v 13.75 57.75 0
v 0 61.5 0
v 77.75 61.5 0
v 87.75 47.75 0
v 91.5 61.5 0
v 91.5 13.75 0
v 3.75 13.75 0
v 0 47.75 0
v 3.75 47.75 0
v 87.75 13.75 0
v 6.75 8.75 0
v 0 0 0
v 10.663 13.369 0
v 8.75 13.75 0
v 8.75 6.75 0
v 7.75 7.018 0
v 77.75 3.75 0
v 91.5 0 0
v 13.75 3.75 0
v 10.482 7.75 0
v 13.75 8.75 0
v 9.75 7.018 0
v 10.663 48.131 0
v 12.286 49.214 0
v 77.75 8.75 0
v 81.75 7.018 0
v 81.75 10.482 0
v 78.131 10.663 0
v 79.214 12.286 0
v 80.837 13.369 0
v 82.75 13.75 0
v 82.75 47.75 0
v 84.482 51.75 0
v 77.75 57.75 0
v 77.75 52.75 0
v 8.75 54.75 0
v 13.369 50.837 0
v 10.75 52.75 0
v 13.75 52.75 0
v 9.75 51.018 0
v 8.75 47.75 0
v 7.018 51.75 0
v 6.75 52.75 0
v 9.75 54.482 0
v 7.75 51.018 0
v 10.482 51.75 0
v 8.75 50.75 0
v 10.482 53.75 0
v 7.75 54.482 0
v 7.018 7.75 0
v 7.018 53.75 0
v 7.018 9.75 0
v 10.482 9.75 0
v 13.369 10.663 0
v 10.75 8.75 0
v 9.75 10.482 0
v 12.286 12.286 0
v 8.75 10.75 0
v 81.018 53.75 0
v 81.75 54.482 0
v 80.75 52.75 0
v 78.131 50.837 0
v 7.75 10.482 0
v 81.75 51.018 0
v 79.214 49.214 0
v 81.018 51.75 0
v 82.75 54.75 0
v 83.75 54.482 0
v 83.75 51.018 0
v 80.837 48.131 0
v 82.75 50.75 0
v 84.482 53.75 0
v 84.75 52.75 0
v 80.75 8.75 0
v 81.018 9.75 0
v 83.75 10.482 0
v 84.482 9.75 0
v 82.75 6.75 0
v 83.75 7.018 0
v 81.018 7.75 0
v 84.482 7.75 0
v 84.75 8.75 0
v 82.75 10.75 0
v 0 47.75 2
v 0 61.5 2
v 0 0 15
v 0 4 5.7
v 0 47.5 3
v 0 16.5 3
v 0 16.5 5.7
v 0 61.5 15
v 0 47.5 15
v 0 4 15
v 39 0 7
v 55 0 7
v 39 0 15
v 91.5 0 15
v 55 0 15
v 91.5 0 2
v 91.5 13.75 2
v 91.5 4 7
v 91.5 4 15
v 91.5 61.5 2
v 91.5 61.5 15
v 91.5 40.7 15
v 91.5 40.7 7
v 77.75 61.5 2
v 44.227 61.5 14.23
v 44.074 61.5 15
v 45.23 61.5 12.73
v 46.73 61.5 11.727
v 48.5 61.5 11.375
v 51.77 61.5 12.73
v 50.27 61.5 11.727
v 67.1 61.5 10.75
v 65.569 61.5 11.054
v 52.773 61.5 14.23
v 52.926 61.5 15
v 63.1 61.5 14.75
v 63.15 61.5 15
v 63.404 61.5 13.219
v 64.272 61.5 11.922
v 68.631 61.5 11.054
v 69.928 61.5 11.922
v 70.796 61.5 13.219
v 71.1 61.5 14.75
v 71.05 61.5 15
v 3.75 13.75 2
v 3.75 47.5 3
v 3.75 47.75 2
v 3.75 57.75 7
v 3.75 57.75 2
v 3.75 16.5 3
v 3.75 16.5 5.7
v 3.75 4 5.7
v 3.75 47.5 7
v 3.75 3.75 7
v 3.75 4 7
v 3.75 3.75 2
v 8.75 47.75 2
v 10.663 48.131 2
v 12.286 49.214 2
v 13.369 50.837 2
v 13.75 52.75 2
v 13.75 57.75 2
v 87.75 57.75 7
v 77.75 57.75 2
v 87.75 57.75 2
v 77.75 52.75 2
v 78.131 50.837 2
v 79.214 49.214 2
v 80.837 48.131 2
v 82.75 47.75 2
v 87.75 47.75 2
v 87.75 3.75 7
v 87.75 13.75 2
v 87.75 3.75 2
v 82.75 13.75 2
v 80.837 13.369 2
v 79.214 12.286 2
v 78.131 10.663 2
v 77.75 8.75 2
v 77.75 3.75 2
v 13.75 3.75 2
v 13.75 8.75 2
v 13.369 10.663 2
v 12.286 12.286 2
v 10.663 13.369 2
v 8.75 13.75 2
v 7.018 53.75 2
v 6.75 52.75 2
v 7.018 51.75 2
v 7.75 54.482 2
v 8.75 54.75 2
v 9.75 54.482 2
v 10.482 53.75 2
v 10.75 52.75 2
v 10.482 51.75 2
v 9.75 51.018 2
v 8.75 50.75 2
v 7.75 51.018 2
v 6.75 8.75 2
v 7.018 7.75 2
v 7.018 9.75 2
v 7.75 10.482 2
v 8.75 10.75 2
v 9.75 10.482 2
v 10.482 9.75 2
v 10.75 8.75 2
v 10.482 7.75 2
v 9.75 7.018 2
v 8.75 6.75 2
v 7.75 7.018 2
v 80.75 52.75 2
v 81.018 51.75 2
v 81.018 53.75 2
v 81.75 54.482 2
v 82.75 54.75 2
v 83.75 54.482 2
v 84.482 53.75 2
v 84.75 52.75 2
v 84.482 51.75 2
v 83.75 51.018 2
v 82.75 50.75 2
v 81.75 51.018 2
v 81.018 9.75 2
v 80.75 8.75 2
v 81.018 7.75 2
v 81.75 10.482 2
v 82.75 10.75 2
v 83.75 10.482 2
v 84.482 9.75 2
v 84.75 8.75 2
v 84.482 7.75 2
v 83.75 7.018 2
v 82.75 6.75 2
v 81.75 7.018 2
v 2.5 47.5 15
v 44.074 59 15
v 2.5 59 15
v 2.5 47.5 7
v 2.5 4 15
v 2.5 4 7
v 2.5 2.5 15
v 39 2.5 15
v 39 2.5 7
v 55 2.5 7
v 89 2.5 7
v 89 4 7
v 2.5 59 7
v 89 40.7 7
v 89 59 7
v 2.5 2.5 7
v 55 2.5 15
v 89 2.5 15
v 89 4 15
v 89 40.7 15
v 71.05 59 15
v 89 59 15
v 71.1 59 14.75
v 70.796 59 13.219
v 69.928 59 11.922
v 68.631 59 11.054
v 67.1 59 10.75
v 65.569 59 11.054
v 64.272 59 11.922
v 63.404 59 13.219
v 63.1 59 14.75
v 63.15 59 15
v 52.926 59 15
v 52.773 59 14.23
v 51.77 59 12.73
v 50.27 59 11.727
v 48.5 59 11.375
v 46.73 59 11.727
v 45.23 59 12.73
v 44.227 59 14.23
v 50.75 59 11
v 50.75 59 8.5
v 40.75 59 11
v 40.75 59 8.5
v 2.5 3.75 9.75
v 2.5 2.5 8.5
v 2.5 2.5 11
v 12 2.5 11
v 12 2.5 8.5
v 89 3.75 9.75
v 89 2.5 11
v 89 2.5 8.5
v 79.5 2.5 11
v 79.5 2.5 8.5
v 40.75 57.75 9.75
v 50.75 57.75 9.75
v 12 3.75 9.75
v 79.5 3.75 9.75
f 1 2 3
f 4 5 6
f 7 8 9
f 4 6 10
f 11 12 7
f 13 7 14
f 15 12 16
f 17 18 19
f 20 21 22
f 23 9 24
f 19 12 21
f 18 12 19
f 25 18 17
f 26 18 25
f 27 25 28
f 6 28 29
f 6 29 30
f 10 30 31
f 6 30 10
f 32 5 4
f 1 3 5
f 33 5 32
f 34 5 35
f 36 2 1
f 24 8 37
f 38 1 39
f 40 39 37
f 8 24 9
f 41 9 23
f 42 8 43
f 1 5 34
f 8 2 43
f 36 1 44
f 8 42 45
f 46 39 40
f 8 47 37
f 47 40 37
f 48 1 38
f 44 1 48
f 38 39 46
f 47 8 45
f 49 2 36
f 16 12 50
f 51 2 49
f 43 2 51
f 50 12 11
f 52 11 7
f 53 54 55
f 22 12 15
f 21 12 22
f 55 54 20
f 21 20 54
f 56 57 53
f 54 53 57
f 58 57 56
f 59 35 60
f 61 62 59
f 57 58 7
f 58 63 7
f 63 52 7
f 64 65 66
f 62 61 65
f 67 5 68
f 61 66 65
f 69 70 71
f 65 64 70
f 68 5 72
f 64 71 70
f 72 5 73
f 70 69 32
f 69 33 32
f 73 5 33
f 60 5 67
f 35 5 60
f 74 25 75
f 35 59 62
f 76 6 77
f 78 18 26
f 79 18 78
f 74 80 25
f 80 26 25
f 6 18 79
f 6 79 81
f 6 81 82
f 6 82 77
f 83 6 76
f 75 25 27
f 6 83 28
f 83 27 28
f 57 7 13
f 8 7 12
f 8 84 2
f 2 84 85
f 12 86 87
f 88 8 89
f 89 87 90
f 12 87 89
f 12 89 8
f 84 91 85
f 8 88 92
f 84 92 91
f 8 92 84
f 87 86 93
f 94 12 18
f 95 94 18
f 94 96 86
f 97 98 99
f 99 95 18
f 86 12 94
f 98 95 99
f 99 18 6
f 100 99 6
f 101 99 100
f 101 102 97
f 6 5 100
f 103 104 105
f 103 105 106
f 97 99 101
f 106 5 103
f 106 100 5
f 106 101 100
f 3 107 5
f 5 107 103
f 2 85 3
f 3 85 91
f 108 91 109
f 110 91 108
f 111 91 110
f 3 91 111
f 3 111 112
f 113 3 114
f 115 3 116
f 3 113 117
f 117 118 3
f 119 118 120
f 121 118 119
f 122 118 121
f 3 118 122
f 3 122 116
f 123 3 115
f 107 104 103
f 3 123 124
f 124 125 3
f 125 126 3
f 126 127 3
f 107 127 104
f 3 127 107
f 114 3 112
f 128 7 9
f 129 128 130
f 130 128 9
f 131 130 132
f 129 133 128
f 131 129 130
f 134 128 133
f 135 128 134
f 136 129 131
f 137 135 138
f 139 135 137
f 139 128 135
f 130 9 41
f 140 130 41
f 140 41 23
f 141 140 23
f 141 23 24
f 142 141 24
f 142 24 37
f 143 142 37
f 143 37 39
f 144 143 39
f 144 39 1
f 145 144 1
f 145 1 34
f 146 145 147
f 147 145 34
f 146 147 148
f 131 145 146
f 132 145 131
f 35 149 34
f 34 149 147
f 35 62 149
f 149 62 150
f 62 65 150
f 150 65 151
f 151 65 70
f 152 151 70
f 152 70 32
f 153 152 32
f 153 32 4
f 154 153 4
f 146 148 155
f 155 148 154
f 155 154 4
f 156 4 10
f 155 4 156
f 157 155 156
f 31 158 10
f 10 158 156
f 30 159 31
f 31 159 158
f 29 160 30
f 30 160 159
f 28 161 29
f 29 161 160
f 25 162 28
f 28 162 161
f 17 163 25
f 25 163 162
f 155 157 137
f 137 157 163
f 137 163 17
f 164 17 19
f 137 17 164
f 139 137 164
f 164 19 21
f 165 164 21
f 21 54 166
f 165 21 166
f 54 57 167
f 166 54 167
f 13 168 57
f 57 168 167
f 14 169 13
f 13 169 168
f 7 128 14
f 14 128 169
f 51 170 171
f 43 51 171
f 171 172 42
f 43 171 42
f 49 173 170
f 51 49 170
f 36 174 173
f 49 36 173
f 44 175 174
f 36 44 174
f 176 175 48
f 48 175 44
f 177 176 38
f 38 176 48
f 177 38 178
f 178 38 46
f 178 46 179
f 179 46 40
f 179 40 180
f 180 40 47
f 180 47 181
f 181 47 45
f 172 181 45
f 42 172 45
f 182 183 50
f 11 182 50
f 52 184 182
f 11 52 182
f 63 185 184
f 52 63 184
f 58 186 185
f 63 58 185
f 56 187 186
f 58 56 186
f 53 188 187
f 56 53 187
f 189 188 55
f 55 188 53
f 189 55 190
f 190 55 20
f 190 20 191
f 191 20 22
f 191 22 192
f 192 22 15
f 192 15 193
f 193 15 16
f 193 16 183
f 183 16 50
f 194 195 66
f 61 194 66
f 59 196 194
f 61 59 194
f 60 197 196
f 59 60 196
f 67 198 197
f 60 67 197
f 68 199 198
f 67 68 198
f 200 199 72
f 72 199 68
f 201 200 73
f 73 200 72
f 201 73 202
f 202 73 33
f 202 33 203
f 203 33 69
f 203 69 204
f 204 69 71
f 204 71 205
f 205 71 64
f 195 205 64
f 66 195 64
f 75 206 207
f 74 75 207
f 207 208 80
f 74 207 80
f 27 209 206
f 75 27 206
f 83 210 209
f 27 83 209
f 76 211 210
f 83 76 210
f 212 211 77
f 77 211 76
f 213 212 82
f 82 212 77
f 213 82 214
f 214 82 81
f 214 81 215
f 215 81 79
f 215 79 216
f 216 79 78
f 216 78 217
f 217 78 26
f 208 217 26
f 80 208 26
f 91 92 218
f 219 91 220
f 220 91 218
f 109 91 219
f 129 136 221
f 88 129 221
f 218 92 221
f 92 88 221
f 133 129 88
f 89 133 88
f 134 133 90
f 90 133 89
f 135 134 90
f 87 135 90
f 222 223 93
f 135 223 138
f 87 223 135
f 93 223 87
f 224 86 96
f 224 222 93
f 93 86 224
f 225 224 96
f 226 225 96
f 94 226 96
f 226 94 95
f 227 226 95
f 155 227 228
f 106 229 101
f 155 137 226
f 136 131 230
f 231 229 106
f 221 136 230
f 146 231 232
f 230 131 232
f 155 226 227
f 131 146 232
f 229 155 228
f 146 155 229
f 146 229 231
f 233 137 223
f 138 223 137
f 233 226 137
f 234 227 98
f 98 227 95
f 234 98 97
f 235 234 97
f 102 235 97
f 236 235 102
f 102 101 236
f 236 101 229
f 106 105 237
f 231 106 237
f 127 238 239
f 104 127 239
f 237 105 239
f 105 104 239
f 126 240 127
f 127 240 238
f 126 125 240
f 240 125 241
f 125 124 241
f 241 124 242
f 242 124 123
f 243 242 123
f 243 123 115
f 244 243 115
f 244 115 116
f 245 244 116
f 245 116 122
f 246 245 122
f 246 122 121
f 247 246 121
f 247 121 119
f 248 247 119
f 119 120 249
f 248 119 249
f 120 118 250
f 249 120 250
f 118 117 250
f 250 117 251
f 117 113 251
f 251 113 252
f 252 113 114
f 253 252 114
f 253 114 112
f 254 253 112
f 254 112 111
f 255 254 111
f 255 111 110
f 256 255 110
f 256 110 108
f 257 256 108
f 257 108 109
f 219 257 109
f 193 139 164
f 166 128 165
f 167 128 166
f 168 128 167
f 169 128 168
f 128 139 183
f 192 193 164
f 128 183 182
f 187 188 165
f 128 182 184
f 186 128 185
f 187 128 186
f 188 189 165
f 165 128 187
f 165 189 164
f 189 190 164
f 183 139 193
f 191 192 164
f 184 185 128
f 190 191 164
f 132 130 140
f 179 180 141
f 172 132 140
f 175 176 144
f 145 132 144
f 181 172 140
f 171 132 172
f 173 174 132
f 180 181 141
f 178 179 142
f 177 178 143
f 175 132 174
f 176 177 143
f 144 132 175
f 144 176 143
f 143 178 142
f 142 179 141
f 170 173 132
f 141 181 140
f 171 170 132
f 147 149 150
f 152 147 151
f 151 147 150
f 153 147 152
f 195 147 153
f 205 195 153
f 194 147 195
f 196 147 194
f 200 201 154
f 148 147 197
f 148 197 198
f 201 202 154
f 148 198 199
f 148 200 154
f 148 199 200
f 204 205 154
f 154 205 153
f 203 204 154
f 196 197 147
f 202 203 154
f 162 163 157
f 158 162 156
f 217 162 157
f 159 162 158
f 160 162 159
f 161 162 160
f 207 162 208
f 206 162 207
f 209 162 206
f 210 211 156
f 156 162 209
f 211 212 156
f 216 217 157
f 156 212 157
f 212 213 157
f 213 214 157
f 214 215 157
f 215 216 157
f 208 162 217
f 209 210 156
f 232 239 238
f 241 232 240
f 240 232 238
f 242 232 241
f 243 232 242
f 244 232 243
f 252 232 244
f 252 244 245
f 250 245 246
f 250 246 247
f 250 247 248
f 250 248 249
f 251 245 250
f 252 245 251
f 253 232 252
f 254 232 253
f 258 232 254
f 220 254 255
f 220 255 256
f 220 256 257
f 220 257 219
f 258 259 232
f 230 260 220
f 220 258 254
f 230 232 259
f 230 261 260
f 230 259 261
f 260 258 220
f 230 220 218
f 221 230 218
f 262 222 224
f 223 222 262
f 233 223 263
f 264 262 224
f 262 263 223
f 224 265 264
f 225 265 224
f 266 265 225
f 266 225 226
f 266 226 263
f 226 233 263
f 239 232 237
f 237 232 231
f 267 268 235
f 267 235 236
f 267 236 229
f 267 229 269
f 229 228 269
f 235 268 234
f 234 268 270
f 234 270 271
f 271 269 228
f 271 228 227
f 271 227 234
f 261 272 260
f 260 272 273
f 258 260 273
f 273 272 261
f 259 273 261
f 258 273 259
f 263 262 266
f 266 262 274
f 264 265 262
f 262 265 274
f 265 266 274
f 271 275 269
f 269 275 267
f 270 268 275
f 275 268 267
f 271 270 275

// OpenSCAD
// Rasperry Pi mounting bracket

rpil = 86;        // RPi board length +1
rpiw = 56;        // RPi board width
rpit = 1.5;       // RPi board thinkness
rpim = 1.25;      // RPi margin on PCB sides (except where HDMI port)
// For the following, corner with power connector is (0,0)
// with length along X-axis, and width along Y-axis.
// x=0 edge:
powerymin = 3.5;  // Min-Y of micro-USP power connector (no clearance)
powerymax = 11.5; // Max-Y of micro-USP power connector (no clearance)
powerht   = -0.8;  // Height (from base of board)
cardymin  = 14.5; // Min-Y of SD card holder
cardymax  = 44.5; // Max-Y ..
cardht    = -3.5; // Height (*below* base of board, with clearance)
// y=0 edge
hdmixmin = 37;    // Min-X of HDMI socket (no clearance)
hdmixmax = 52;    // Max-X of HDMI socket (no clearance)
hdmiht   = 7.6;   // Height (from base of board)
// x=max edge
netminy  = 2;     // Min-Y of Network socket
netmaxy  = 18;    // Max-Y ..
netht    = 15;    // Height (from base of board)
usbminy  = 24.5;  // Min-Y of USB socket
usbmaxy  = 37.7;  // Max-Y ..
usbht    = 17.5;  // Height (from base of board)
// y=max edge
videox   = 46;    // Y-offset to centre of video connector
videoh   = 9;     // H-offset (from base of board)
videod   = 8.25;  // Diameter of video connector ** allow for plug **
audiox   = 64.6;  // Y-offset to centre of audio connector
audioh   = 7.75;  // H-offset (from base of board)
audiod   = 7;     // Diameter of audeo connector

module box(l, w, h, t)
{
  t2 = t * 2;
  difference()
  {
    cube( size=[l,w,h] );
    translate([t,t,t])
      cube( size=[l-t2, w-t2, h-t]) ;
  }
}

module boxsides(l, w, h, t)
{
  t2 = t * 2;
  difference()
  {
    cube( size=[l,w,h] );
    translate([t,t,0])
      cube( size=[l-t2, w-t2, h]) ;
  }
}

// len, width, height overall (internal)
// Wall thickness
// Support shoulder thickness
// Support height
module frame(lo, wo, ho, tw, ts, hs)
{
  difference()
  {
    boxsides(lo+tw*2, wo+tw*2, ho, tw+ts);
    translate([tw,tw,hs])
      cube(size=[lo,wo,ho]);
  }
}

// Mounting tab
module tab(l,w,t,cornerrad,holedia,xo,yo)
{
  rc = ((xo==0) && (yo==0)) ?  0 :
       ((xo==1) && (yo==0)) ?  1 :
       ((xo==1) && (yo==1)) ?  2 : 3;
  rotate([0,0,rc*90])
  {
    difference()
    {
      union()
      {
        translate([0,0,0]) cube(size=[l-cornerrad, w, t]);
        translate([0,0,0]) cube(size=[l, w-cornerrad, t]);
        translate ([l-cornerrad,w-cornerrad,0])
          cylinder(r=cornerrad, h=t, $fn=16);
      }
      translate([l-cornerrad, w-cornerrad, -t/2])
        cylinder(r=holedia/2, h=t*2, $fn=12);
    }
  }
}

// Cutout in frame side
module cutout(minx, maxx, miny, maxy, baseh, h)
{
  clearance = 0.5;
  cutheight = abs(h)+20;
  echo("Cutout x=",[minx,maxx]," y=",[miny,maxy],"h=",h," clearance=",clearance);
  if ( h > 0 )
  {
    translate([minx-clearance,miny-clearance,baseh])
      cube(size=[maxx-minx+2*clearance, maxy-miny+2*clearance, cutheight]);
  }
  else
  {
    translate([minx-clearance,miny-clearance,baseh+h-clearance])
      cube(size=[maxx-minx+2*clearance, maxy-miny+2*clearance, cutheight]);    
  }
}

// Hole cutout Y-aligned in frame side
module cutoutholeY(x, miny, maxy, h, d)
{
  clearance = 0.5;
  translate([x,miny-clearance,h])
    rotate([-90,0,0])    // (rotate from +Z to +Y axis)
      # cylinder(r=d/2+clearance,h=maxy-miny+clearance*2,$fn=16);
}

// Board retaining ridge
// min-x, max-x, y-pos of centre, height of centre, depth
module ridgeX(xmin, xmax, y, h, d)
{
  d2 = d*sqrt(2);
  translate([xmin,y,h])
    rotate([45,0,0])
      translate([0,0,0])
        # cube(size=[xmax-xmin,d2,d2]);
}

frameth  = 2.5;   // Thickness of outer frame
boardht  = 7;     // Height to board
totalht  = 15;    // Height overall
tabln    = 10;    // Length of corner tab
tabwd    = 10;    // Width of corner tab
tabth    = 2;     // Thickness of corner tab
holedia  = 4;     // Diamater screw hole in tab

module rpimount()
{
  clearance = 0.5;
  lenov = rpil+frameth*2+clearance;    // Overall length
  widov = rpiw+frameth*2+clearance;    // Overall width
  supth = frameth+rpim;                // Thickness of support frame
  tablo = tabln+supth;                 // Screw tab length overall
  tabwo = tabwd+supth;                 // Screw tab width overall
  difference()
  {
    union()
    {
      frame(rpil+clearance,rpiw+clearance,totalht,frameth,rpim,boardht);
      // Add mounting tabs
      for (xo = [0,1])
      {
        for (yo = [0,1])
        {
        translate ([xo*lenov,yo*widov,0])
          tab(tablo, tabwo, tabth, (min(tablo,tabwo)-supth)/2, holedia, xo, yo);
        }
      }
      // Add retaining ridges
      ridgeX(0, 12,                frameth,       boardht+rpit, 1.25);
      ridgeX(lenov-12, lenov,      frameth,       boardht+rpit, 1.25);
      ridgeX(lenov/2-5, lenov/2+5, widov-frameth, boardht+rpit, 1.25);
    }
    // Cutout for power connector (extended to avoid silly stick-up post)
    cutout(0,supth,frameth+powerymin-1.5,frameth+powerymax+10,boardht,powerht);
    // Cutout for SD card
    cutout(0,supth,frameth+cardymin,frameth+cardymax,boardht,cardht);
    // Cutout for HDMI
    cutout(frameth+hdmixmin,frameth+hdmixmax,0,supth,boardht,hdmiht);
    // Cutout for Ethernet (extended to avoid silly sick=up post)
    cutout(lenov-supth,lenov,frameth+netminy,frameth+netmaxy+10,boardht,netht);
    // Cutout for USB
    cutout(lenov-supth,lenov,frameth+usbminy,frameth+usbmaxy,boardht,usbht);
    // Cutout for audio
    cutoutholeY(audiox+frameth,widov-supth,widov,boardht+audioh,audiod);
    // Cutout for video
    cutoutholeY(videox+frameth,widov-supth,widov,boardht+videoh,videod);
  }
}

rpimount();

//tab(10, 20, 2, 3, 4);

//ridgeX(0,10,0,2,2);
